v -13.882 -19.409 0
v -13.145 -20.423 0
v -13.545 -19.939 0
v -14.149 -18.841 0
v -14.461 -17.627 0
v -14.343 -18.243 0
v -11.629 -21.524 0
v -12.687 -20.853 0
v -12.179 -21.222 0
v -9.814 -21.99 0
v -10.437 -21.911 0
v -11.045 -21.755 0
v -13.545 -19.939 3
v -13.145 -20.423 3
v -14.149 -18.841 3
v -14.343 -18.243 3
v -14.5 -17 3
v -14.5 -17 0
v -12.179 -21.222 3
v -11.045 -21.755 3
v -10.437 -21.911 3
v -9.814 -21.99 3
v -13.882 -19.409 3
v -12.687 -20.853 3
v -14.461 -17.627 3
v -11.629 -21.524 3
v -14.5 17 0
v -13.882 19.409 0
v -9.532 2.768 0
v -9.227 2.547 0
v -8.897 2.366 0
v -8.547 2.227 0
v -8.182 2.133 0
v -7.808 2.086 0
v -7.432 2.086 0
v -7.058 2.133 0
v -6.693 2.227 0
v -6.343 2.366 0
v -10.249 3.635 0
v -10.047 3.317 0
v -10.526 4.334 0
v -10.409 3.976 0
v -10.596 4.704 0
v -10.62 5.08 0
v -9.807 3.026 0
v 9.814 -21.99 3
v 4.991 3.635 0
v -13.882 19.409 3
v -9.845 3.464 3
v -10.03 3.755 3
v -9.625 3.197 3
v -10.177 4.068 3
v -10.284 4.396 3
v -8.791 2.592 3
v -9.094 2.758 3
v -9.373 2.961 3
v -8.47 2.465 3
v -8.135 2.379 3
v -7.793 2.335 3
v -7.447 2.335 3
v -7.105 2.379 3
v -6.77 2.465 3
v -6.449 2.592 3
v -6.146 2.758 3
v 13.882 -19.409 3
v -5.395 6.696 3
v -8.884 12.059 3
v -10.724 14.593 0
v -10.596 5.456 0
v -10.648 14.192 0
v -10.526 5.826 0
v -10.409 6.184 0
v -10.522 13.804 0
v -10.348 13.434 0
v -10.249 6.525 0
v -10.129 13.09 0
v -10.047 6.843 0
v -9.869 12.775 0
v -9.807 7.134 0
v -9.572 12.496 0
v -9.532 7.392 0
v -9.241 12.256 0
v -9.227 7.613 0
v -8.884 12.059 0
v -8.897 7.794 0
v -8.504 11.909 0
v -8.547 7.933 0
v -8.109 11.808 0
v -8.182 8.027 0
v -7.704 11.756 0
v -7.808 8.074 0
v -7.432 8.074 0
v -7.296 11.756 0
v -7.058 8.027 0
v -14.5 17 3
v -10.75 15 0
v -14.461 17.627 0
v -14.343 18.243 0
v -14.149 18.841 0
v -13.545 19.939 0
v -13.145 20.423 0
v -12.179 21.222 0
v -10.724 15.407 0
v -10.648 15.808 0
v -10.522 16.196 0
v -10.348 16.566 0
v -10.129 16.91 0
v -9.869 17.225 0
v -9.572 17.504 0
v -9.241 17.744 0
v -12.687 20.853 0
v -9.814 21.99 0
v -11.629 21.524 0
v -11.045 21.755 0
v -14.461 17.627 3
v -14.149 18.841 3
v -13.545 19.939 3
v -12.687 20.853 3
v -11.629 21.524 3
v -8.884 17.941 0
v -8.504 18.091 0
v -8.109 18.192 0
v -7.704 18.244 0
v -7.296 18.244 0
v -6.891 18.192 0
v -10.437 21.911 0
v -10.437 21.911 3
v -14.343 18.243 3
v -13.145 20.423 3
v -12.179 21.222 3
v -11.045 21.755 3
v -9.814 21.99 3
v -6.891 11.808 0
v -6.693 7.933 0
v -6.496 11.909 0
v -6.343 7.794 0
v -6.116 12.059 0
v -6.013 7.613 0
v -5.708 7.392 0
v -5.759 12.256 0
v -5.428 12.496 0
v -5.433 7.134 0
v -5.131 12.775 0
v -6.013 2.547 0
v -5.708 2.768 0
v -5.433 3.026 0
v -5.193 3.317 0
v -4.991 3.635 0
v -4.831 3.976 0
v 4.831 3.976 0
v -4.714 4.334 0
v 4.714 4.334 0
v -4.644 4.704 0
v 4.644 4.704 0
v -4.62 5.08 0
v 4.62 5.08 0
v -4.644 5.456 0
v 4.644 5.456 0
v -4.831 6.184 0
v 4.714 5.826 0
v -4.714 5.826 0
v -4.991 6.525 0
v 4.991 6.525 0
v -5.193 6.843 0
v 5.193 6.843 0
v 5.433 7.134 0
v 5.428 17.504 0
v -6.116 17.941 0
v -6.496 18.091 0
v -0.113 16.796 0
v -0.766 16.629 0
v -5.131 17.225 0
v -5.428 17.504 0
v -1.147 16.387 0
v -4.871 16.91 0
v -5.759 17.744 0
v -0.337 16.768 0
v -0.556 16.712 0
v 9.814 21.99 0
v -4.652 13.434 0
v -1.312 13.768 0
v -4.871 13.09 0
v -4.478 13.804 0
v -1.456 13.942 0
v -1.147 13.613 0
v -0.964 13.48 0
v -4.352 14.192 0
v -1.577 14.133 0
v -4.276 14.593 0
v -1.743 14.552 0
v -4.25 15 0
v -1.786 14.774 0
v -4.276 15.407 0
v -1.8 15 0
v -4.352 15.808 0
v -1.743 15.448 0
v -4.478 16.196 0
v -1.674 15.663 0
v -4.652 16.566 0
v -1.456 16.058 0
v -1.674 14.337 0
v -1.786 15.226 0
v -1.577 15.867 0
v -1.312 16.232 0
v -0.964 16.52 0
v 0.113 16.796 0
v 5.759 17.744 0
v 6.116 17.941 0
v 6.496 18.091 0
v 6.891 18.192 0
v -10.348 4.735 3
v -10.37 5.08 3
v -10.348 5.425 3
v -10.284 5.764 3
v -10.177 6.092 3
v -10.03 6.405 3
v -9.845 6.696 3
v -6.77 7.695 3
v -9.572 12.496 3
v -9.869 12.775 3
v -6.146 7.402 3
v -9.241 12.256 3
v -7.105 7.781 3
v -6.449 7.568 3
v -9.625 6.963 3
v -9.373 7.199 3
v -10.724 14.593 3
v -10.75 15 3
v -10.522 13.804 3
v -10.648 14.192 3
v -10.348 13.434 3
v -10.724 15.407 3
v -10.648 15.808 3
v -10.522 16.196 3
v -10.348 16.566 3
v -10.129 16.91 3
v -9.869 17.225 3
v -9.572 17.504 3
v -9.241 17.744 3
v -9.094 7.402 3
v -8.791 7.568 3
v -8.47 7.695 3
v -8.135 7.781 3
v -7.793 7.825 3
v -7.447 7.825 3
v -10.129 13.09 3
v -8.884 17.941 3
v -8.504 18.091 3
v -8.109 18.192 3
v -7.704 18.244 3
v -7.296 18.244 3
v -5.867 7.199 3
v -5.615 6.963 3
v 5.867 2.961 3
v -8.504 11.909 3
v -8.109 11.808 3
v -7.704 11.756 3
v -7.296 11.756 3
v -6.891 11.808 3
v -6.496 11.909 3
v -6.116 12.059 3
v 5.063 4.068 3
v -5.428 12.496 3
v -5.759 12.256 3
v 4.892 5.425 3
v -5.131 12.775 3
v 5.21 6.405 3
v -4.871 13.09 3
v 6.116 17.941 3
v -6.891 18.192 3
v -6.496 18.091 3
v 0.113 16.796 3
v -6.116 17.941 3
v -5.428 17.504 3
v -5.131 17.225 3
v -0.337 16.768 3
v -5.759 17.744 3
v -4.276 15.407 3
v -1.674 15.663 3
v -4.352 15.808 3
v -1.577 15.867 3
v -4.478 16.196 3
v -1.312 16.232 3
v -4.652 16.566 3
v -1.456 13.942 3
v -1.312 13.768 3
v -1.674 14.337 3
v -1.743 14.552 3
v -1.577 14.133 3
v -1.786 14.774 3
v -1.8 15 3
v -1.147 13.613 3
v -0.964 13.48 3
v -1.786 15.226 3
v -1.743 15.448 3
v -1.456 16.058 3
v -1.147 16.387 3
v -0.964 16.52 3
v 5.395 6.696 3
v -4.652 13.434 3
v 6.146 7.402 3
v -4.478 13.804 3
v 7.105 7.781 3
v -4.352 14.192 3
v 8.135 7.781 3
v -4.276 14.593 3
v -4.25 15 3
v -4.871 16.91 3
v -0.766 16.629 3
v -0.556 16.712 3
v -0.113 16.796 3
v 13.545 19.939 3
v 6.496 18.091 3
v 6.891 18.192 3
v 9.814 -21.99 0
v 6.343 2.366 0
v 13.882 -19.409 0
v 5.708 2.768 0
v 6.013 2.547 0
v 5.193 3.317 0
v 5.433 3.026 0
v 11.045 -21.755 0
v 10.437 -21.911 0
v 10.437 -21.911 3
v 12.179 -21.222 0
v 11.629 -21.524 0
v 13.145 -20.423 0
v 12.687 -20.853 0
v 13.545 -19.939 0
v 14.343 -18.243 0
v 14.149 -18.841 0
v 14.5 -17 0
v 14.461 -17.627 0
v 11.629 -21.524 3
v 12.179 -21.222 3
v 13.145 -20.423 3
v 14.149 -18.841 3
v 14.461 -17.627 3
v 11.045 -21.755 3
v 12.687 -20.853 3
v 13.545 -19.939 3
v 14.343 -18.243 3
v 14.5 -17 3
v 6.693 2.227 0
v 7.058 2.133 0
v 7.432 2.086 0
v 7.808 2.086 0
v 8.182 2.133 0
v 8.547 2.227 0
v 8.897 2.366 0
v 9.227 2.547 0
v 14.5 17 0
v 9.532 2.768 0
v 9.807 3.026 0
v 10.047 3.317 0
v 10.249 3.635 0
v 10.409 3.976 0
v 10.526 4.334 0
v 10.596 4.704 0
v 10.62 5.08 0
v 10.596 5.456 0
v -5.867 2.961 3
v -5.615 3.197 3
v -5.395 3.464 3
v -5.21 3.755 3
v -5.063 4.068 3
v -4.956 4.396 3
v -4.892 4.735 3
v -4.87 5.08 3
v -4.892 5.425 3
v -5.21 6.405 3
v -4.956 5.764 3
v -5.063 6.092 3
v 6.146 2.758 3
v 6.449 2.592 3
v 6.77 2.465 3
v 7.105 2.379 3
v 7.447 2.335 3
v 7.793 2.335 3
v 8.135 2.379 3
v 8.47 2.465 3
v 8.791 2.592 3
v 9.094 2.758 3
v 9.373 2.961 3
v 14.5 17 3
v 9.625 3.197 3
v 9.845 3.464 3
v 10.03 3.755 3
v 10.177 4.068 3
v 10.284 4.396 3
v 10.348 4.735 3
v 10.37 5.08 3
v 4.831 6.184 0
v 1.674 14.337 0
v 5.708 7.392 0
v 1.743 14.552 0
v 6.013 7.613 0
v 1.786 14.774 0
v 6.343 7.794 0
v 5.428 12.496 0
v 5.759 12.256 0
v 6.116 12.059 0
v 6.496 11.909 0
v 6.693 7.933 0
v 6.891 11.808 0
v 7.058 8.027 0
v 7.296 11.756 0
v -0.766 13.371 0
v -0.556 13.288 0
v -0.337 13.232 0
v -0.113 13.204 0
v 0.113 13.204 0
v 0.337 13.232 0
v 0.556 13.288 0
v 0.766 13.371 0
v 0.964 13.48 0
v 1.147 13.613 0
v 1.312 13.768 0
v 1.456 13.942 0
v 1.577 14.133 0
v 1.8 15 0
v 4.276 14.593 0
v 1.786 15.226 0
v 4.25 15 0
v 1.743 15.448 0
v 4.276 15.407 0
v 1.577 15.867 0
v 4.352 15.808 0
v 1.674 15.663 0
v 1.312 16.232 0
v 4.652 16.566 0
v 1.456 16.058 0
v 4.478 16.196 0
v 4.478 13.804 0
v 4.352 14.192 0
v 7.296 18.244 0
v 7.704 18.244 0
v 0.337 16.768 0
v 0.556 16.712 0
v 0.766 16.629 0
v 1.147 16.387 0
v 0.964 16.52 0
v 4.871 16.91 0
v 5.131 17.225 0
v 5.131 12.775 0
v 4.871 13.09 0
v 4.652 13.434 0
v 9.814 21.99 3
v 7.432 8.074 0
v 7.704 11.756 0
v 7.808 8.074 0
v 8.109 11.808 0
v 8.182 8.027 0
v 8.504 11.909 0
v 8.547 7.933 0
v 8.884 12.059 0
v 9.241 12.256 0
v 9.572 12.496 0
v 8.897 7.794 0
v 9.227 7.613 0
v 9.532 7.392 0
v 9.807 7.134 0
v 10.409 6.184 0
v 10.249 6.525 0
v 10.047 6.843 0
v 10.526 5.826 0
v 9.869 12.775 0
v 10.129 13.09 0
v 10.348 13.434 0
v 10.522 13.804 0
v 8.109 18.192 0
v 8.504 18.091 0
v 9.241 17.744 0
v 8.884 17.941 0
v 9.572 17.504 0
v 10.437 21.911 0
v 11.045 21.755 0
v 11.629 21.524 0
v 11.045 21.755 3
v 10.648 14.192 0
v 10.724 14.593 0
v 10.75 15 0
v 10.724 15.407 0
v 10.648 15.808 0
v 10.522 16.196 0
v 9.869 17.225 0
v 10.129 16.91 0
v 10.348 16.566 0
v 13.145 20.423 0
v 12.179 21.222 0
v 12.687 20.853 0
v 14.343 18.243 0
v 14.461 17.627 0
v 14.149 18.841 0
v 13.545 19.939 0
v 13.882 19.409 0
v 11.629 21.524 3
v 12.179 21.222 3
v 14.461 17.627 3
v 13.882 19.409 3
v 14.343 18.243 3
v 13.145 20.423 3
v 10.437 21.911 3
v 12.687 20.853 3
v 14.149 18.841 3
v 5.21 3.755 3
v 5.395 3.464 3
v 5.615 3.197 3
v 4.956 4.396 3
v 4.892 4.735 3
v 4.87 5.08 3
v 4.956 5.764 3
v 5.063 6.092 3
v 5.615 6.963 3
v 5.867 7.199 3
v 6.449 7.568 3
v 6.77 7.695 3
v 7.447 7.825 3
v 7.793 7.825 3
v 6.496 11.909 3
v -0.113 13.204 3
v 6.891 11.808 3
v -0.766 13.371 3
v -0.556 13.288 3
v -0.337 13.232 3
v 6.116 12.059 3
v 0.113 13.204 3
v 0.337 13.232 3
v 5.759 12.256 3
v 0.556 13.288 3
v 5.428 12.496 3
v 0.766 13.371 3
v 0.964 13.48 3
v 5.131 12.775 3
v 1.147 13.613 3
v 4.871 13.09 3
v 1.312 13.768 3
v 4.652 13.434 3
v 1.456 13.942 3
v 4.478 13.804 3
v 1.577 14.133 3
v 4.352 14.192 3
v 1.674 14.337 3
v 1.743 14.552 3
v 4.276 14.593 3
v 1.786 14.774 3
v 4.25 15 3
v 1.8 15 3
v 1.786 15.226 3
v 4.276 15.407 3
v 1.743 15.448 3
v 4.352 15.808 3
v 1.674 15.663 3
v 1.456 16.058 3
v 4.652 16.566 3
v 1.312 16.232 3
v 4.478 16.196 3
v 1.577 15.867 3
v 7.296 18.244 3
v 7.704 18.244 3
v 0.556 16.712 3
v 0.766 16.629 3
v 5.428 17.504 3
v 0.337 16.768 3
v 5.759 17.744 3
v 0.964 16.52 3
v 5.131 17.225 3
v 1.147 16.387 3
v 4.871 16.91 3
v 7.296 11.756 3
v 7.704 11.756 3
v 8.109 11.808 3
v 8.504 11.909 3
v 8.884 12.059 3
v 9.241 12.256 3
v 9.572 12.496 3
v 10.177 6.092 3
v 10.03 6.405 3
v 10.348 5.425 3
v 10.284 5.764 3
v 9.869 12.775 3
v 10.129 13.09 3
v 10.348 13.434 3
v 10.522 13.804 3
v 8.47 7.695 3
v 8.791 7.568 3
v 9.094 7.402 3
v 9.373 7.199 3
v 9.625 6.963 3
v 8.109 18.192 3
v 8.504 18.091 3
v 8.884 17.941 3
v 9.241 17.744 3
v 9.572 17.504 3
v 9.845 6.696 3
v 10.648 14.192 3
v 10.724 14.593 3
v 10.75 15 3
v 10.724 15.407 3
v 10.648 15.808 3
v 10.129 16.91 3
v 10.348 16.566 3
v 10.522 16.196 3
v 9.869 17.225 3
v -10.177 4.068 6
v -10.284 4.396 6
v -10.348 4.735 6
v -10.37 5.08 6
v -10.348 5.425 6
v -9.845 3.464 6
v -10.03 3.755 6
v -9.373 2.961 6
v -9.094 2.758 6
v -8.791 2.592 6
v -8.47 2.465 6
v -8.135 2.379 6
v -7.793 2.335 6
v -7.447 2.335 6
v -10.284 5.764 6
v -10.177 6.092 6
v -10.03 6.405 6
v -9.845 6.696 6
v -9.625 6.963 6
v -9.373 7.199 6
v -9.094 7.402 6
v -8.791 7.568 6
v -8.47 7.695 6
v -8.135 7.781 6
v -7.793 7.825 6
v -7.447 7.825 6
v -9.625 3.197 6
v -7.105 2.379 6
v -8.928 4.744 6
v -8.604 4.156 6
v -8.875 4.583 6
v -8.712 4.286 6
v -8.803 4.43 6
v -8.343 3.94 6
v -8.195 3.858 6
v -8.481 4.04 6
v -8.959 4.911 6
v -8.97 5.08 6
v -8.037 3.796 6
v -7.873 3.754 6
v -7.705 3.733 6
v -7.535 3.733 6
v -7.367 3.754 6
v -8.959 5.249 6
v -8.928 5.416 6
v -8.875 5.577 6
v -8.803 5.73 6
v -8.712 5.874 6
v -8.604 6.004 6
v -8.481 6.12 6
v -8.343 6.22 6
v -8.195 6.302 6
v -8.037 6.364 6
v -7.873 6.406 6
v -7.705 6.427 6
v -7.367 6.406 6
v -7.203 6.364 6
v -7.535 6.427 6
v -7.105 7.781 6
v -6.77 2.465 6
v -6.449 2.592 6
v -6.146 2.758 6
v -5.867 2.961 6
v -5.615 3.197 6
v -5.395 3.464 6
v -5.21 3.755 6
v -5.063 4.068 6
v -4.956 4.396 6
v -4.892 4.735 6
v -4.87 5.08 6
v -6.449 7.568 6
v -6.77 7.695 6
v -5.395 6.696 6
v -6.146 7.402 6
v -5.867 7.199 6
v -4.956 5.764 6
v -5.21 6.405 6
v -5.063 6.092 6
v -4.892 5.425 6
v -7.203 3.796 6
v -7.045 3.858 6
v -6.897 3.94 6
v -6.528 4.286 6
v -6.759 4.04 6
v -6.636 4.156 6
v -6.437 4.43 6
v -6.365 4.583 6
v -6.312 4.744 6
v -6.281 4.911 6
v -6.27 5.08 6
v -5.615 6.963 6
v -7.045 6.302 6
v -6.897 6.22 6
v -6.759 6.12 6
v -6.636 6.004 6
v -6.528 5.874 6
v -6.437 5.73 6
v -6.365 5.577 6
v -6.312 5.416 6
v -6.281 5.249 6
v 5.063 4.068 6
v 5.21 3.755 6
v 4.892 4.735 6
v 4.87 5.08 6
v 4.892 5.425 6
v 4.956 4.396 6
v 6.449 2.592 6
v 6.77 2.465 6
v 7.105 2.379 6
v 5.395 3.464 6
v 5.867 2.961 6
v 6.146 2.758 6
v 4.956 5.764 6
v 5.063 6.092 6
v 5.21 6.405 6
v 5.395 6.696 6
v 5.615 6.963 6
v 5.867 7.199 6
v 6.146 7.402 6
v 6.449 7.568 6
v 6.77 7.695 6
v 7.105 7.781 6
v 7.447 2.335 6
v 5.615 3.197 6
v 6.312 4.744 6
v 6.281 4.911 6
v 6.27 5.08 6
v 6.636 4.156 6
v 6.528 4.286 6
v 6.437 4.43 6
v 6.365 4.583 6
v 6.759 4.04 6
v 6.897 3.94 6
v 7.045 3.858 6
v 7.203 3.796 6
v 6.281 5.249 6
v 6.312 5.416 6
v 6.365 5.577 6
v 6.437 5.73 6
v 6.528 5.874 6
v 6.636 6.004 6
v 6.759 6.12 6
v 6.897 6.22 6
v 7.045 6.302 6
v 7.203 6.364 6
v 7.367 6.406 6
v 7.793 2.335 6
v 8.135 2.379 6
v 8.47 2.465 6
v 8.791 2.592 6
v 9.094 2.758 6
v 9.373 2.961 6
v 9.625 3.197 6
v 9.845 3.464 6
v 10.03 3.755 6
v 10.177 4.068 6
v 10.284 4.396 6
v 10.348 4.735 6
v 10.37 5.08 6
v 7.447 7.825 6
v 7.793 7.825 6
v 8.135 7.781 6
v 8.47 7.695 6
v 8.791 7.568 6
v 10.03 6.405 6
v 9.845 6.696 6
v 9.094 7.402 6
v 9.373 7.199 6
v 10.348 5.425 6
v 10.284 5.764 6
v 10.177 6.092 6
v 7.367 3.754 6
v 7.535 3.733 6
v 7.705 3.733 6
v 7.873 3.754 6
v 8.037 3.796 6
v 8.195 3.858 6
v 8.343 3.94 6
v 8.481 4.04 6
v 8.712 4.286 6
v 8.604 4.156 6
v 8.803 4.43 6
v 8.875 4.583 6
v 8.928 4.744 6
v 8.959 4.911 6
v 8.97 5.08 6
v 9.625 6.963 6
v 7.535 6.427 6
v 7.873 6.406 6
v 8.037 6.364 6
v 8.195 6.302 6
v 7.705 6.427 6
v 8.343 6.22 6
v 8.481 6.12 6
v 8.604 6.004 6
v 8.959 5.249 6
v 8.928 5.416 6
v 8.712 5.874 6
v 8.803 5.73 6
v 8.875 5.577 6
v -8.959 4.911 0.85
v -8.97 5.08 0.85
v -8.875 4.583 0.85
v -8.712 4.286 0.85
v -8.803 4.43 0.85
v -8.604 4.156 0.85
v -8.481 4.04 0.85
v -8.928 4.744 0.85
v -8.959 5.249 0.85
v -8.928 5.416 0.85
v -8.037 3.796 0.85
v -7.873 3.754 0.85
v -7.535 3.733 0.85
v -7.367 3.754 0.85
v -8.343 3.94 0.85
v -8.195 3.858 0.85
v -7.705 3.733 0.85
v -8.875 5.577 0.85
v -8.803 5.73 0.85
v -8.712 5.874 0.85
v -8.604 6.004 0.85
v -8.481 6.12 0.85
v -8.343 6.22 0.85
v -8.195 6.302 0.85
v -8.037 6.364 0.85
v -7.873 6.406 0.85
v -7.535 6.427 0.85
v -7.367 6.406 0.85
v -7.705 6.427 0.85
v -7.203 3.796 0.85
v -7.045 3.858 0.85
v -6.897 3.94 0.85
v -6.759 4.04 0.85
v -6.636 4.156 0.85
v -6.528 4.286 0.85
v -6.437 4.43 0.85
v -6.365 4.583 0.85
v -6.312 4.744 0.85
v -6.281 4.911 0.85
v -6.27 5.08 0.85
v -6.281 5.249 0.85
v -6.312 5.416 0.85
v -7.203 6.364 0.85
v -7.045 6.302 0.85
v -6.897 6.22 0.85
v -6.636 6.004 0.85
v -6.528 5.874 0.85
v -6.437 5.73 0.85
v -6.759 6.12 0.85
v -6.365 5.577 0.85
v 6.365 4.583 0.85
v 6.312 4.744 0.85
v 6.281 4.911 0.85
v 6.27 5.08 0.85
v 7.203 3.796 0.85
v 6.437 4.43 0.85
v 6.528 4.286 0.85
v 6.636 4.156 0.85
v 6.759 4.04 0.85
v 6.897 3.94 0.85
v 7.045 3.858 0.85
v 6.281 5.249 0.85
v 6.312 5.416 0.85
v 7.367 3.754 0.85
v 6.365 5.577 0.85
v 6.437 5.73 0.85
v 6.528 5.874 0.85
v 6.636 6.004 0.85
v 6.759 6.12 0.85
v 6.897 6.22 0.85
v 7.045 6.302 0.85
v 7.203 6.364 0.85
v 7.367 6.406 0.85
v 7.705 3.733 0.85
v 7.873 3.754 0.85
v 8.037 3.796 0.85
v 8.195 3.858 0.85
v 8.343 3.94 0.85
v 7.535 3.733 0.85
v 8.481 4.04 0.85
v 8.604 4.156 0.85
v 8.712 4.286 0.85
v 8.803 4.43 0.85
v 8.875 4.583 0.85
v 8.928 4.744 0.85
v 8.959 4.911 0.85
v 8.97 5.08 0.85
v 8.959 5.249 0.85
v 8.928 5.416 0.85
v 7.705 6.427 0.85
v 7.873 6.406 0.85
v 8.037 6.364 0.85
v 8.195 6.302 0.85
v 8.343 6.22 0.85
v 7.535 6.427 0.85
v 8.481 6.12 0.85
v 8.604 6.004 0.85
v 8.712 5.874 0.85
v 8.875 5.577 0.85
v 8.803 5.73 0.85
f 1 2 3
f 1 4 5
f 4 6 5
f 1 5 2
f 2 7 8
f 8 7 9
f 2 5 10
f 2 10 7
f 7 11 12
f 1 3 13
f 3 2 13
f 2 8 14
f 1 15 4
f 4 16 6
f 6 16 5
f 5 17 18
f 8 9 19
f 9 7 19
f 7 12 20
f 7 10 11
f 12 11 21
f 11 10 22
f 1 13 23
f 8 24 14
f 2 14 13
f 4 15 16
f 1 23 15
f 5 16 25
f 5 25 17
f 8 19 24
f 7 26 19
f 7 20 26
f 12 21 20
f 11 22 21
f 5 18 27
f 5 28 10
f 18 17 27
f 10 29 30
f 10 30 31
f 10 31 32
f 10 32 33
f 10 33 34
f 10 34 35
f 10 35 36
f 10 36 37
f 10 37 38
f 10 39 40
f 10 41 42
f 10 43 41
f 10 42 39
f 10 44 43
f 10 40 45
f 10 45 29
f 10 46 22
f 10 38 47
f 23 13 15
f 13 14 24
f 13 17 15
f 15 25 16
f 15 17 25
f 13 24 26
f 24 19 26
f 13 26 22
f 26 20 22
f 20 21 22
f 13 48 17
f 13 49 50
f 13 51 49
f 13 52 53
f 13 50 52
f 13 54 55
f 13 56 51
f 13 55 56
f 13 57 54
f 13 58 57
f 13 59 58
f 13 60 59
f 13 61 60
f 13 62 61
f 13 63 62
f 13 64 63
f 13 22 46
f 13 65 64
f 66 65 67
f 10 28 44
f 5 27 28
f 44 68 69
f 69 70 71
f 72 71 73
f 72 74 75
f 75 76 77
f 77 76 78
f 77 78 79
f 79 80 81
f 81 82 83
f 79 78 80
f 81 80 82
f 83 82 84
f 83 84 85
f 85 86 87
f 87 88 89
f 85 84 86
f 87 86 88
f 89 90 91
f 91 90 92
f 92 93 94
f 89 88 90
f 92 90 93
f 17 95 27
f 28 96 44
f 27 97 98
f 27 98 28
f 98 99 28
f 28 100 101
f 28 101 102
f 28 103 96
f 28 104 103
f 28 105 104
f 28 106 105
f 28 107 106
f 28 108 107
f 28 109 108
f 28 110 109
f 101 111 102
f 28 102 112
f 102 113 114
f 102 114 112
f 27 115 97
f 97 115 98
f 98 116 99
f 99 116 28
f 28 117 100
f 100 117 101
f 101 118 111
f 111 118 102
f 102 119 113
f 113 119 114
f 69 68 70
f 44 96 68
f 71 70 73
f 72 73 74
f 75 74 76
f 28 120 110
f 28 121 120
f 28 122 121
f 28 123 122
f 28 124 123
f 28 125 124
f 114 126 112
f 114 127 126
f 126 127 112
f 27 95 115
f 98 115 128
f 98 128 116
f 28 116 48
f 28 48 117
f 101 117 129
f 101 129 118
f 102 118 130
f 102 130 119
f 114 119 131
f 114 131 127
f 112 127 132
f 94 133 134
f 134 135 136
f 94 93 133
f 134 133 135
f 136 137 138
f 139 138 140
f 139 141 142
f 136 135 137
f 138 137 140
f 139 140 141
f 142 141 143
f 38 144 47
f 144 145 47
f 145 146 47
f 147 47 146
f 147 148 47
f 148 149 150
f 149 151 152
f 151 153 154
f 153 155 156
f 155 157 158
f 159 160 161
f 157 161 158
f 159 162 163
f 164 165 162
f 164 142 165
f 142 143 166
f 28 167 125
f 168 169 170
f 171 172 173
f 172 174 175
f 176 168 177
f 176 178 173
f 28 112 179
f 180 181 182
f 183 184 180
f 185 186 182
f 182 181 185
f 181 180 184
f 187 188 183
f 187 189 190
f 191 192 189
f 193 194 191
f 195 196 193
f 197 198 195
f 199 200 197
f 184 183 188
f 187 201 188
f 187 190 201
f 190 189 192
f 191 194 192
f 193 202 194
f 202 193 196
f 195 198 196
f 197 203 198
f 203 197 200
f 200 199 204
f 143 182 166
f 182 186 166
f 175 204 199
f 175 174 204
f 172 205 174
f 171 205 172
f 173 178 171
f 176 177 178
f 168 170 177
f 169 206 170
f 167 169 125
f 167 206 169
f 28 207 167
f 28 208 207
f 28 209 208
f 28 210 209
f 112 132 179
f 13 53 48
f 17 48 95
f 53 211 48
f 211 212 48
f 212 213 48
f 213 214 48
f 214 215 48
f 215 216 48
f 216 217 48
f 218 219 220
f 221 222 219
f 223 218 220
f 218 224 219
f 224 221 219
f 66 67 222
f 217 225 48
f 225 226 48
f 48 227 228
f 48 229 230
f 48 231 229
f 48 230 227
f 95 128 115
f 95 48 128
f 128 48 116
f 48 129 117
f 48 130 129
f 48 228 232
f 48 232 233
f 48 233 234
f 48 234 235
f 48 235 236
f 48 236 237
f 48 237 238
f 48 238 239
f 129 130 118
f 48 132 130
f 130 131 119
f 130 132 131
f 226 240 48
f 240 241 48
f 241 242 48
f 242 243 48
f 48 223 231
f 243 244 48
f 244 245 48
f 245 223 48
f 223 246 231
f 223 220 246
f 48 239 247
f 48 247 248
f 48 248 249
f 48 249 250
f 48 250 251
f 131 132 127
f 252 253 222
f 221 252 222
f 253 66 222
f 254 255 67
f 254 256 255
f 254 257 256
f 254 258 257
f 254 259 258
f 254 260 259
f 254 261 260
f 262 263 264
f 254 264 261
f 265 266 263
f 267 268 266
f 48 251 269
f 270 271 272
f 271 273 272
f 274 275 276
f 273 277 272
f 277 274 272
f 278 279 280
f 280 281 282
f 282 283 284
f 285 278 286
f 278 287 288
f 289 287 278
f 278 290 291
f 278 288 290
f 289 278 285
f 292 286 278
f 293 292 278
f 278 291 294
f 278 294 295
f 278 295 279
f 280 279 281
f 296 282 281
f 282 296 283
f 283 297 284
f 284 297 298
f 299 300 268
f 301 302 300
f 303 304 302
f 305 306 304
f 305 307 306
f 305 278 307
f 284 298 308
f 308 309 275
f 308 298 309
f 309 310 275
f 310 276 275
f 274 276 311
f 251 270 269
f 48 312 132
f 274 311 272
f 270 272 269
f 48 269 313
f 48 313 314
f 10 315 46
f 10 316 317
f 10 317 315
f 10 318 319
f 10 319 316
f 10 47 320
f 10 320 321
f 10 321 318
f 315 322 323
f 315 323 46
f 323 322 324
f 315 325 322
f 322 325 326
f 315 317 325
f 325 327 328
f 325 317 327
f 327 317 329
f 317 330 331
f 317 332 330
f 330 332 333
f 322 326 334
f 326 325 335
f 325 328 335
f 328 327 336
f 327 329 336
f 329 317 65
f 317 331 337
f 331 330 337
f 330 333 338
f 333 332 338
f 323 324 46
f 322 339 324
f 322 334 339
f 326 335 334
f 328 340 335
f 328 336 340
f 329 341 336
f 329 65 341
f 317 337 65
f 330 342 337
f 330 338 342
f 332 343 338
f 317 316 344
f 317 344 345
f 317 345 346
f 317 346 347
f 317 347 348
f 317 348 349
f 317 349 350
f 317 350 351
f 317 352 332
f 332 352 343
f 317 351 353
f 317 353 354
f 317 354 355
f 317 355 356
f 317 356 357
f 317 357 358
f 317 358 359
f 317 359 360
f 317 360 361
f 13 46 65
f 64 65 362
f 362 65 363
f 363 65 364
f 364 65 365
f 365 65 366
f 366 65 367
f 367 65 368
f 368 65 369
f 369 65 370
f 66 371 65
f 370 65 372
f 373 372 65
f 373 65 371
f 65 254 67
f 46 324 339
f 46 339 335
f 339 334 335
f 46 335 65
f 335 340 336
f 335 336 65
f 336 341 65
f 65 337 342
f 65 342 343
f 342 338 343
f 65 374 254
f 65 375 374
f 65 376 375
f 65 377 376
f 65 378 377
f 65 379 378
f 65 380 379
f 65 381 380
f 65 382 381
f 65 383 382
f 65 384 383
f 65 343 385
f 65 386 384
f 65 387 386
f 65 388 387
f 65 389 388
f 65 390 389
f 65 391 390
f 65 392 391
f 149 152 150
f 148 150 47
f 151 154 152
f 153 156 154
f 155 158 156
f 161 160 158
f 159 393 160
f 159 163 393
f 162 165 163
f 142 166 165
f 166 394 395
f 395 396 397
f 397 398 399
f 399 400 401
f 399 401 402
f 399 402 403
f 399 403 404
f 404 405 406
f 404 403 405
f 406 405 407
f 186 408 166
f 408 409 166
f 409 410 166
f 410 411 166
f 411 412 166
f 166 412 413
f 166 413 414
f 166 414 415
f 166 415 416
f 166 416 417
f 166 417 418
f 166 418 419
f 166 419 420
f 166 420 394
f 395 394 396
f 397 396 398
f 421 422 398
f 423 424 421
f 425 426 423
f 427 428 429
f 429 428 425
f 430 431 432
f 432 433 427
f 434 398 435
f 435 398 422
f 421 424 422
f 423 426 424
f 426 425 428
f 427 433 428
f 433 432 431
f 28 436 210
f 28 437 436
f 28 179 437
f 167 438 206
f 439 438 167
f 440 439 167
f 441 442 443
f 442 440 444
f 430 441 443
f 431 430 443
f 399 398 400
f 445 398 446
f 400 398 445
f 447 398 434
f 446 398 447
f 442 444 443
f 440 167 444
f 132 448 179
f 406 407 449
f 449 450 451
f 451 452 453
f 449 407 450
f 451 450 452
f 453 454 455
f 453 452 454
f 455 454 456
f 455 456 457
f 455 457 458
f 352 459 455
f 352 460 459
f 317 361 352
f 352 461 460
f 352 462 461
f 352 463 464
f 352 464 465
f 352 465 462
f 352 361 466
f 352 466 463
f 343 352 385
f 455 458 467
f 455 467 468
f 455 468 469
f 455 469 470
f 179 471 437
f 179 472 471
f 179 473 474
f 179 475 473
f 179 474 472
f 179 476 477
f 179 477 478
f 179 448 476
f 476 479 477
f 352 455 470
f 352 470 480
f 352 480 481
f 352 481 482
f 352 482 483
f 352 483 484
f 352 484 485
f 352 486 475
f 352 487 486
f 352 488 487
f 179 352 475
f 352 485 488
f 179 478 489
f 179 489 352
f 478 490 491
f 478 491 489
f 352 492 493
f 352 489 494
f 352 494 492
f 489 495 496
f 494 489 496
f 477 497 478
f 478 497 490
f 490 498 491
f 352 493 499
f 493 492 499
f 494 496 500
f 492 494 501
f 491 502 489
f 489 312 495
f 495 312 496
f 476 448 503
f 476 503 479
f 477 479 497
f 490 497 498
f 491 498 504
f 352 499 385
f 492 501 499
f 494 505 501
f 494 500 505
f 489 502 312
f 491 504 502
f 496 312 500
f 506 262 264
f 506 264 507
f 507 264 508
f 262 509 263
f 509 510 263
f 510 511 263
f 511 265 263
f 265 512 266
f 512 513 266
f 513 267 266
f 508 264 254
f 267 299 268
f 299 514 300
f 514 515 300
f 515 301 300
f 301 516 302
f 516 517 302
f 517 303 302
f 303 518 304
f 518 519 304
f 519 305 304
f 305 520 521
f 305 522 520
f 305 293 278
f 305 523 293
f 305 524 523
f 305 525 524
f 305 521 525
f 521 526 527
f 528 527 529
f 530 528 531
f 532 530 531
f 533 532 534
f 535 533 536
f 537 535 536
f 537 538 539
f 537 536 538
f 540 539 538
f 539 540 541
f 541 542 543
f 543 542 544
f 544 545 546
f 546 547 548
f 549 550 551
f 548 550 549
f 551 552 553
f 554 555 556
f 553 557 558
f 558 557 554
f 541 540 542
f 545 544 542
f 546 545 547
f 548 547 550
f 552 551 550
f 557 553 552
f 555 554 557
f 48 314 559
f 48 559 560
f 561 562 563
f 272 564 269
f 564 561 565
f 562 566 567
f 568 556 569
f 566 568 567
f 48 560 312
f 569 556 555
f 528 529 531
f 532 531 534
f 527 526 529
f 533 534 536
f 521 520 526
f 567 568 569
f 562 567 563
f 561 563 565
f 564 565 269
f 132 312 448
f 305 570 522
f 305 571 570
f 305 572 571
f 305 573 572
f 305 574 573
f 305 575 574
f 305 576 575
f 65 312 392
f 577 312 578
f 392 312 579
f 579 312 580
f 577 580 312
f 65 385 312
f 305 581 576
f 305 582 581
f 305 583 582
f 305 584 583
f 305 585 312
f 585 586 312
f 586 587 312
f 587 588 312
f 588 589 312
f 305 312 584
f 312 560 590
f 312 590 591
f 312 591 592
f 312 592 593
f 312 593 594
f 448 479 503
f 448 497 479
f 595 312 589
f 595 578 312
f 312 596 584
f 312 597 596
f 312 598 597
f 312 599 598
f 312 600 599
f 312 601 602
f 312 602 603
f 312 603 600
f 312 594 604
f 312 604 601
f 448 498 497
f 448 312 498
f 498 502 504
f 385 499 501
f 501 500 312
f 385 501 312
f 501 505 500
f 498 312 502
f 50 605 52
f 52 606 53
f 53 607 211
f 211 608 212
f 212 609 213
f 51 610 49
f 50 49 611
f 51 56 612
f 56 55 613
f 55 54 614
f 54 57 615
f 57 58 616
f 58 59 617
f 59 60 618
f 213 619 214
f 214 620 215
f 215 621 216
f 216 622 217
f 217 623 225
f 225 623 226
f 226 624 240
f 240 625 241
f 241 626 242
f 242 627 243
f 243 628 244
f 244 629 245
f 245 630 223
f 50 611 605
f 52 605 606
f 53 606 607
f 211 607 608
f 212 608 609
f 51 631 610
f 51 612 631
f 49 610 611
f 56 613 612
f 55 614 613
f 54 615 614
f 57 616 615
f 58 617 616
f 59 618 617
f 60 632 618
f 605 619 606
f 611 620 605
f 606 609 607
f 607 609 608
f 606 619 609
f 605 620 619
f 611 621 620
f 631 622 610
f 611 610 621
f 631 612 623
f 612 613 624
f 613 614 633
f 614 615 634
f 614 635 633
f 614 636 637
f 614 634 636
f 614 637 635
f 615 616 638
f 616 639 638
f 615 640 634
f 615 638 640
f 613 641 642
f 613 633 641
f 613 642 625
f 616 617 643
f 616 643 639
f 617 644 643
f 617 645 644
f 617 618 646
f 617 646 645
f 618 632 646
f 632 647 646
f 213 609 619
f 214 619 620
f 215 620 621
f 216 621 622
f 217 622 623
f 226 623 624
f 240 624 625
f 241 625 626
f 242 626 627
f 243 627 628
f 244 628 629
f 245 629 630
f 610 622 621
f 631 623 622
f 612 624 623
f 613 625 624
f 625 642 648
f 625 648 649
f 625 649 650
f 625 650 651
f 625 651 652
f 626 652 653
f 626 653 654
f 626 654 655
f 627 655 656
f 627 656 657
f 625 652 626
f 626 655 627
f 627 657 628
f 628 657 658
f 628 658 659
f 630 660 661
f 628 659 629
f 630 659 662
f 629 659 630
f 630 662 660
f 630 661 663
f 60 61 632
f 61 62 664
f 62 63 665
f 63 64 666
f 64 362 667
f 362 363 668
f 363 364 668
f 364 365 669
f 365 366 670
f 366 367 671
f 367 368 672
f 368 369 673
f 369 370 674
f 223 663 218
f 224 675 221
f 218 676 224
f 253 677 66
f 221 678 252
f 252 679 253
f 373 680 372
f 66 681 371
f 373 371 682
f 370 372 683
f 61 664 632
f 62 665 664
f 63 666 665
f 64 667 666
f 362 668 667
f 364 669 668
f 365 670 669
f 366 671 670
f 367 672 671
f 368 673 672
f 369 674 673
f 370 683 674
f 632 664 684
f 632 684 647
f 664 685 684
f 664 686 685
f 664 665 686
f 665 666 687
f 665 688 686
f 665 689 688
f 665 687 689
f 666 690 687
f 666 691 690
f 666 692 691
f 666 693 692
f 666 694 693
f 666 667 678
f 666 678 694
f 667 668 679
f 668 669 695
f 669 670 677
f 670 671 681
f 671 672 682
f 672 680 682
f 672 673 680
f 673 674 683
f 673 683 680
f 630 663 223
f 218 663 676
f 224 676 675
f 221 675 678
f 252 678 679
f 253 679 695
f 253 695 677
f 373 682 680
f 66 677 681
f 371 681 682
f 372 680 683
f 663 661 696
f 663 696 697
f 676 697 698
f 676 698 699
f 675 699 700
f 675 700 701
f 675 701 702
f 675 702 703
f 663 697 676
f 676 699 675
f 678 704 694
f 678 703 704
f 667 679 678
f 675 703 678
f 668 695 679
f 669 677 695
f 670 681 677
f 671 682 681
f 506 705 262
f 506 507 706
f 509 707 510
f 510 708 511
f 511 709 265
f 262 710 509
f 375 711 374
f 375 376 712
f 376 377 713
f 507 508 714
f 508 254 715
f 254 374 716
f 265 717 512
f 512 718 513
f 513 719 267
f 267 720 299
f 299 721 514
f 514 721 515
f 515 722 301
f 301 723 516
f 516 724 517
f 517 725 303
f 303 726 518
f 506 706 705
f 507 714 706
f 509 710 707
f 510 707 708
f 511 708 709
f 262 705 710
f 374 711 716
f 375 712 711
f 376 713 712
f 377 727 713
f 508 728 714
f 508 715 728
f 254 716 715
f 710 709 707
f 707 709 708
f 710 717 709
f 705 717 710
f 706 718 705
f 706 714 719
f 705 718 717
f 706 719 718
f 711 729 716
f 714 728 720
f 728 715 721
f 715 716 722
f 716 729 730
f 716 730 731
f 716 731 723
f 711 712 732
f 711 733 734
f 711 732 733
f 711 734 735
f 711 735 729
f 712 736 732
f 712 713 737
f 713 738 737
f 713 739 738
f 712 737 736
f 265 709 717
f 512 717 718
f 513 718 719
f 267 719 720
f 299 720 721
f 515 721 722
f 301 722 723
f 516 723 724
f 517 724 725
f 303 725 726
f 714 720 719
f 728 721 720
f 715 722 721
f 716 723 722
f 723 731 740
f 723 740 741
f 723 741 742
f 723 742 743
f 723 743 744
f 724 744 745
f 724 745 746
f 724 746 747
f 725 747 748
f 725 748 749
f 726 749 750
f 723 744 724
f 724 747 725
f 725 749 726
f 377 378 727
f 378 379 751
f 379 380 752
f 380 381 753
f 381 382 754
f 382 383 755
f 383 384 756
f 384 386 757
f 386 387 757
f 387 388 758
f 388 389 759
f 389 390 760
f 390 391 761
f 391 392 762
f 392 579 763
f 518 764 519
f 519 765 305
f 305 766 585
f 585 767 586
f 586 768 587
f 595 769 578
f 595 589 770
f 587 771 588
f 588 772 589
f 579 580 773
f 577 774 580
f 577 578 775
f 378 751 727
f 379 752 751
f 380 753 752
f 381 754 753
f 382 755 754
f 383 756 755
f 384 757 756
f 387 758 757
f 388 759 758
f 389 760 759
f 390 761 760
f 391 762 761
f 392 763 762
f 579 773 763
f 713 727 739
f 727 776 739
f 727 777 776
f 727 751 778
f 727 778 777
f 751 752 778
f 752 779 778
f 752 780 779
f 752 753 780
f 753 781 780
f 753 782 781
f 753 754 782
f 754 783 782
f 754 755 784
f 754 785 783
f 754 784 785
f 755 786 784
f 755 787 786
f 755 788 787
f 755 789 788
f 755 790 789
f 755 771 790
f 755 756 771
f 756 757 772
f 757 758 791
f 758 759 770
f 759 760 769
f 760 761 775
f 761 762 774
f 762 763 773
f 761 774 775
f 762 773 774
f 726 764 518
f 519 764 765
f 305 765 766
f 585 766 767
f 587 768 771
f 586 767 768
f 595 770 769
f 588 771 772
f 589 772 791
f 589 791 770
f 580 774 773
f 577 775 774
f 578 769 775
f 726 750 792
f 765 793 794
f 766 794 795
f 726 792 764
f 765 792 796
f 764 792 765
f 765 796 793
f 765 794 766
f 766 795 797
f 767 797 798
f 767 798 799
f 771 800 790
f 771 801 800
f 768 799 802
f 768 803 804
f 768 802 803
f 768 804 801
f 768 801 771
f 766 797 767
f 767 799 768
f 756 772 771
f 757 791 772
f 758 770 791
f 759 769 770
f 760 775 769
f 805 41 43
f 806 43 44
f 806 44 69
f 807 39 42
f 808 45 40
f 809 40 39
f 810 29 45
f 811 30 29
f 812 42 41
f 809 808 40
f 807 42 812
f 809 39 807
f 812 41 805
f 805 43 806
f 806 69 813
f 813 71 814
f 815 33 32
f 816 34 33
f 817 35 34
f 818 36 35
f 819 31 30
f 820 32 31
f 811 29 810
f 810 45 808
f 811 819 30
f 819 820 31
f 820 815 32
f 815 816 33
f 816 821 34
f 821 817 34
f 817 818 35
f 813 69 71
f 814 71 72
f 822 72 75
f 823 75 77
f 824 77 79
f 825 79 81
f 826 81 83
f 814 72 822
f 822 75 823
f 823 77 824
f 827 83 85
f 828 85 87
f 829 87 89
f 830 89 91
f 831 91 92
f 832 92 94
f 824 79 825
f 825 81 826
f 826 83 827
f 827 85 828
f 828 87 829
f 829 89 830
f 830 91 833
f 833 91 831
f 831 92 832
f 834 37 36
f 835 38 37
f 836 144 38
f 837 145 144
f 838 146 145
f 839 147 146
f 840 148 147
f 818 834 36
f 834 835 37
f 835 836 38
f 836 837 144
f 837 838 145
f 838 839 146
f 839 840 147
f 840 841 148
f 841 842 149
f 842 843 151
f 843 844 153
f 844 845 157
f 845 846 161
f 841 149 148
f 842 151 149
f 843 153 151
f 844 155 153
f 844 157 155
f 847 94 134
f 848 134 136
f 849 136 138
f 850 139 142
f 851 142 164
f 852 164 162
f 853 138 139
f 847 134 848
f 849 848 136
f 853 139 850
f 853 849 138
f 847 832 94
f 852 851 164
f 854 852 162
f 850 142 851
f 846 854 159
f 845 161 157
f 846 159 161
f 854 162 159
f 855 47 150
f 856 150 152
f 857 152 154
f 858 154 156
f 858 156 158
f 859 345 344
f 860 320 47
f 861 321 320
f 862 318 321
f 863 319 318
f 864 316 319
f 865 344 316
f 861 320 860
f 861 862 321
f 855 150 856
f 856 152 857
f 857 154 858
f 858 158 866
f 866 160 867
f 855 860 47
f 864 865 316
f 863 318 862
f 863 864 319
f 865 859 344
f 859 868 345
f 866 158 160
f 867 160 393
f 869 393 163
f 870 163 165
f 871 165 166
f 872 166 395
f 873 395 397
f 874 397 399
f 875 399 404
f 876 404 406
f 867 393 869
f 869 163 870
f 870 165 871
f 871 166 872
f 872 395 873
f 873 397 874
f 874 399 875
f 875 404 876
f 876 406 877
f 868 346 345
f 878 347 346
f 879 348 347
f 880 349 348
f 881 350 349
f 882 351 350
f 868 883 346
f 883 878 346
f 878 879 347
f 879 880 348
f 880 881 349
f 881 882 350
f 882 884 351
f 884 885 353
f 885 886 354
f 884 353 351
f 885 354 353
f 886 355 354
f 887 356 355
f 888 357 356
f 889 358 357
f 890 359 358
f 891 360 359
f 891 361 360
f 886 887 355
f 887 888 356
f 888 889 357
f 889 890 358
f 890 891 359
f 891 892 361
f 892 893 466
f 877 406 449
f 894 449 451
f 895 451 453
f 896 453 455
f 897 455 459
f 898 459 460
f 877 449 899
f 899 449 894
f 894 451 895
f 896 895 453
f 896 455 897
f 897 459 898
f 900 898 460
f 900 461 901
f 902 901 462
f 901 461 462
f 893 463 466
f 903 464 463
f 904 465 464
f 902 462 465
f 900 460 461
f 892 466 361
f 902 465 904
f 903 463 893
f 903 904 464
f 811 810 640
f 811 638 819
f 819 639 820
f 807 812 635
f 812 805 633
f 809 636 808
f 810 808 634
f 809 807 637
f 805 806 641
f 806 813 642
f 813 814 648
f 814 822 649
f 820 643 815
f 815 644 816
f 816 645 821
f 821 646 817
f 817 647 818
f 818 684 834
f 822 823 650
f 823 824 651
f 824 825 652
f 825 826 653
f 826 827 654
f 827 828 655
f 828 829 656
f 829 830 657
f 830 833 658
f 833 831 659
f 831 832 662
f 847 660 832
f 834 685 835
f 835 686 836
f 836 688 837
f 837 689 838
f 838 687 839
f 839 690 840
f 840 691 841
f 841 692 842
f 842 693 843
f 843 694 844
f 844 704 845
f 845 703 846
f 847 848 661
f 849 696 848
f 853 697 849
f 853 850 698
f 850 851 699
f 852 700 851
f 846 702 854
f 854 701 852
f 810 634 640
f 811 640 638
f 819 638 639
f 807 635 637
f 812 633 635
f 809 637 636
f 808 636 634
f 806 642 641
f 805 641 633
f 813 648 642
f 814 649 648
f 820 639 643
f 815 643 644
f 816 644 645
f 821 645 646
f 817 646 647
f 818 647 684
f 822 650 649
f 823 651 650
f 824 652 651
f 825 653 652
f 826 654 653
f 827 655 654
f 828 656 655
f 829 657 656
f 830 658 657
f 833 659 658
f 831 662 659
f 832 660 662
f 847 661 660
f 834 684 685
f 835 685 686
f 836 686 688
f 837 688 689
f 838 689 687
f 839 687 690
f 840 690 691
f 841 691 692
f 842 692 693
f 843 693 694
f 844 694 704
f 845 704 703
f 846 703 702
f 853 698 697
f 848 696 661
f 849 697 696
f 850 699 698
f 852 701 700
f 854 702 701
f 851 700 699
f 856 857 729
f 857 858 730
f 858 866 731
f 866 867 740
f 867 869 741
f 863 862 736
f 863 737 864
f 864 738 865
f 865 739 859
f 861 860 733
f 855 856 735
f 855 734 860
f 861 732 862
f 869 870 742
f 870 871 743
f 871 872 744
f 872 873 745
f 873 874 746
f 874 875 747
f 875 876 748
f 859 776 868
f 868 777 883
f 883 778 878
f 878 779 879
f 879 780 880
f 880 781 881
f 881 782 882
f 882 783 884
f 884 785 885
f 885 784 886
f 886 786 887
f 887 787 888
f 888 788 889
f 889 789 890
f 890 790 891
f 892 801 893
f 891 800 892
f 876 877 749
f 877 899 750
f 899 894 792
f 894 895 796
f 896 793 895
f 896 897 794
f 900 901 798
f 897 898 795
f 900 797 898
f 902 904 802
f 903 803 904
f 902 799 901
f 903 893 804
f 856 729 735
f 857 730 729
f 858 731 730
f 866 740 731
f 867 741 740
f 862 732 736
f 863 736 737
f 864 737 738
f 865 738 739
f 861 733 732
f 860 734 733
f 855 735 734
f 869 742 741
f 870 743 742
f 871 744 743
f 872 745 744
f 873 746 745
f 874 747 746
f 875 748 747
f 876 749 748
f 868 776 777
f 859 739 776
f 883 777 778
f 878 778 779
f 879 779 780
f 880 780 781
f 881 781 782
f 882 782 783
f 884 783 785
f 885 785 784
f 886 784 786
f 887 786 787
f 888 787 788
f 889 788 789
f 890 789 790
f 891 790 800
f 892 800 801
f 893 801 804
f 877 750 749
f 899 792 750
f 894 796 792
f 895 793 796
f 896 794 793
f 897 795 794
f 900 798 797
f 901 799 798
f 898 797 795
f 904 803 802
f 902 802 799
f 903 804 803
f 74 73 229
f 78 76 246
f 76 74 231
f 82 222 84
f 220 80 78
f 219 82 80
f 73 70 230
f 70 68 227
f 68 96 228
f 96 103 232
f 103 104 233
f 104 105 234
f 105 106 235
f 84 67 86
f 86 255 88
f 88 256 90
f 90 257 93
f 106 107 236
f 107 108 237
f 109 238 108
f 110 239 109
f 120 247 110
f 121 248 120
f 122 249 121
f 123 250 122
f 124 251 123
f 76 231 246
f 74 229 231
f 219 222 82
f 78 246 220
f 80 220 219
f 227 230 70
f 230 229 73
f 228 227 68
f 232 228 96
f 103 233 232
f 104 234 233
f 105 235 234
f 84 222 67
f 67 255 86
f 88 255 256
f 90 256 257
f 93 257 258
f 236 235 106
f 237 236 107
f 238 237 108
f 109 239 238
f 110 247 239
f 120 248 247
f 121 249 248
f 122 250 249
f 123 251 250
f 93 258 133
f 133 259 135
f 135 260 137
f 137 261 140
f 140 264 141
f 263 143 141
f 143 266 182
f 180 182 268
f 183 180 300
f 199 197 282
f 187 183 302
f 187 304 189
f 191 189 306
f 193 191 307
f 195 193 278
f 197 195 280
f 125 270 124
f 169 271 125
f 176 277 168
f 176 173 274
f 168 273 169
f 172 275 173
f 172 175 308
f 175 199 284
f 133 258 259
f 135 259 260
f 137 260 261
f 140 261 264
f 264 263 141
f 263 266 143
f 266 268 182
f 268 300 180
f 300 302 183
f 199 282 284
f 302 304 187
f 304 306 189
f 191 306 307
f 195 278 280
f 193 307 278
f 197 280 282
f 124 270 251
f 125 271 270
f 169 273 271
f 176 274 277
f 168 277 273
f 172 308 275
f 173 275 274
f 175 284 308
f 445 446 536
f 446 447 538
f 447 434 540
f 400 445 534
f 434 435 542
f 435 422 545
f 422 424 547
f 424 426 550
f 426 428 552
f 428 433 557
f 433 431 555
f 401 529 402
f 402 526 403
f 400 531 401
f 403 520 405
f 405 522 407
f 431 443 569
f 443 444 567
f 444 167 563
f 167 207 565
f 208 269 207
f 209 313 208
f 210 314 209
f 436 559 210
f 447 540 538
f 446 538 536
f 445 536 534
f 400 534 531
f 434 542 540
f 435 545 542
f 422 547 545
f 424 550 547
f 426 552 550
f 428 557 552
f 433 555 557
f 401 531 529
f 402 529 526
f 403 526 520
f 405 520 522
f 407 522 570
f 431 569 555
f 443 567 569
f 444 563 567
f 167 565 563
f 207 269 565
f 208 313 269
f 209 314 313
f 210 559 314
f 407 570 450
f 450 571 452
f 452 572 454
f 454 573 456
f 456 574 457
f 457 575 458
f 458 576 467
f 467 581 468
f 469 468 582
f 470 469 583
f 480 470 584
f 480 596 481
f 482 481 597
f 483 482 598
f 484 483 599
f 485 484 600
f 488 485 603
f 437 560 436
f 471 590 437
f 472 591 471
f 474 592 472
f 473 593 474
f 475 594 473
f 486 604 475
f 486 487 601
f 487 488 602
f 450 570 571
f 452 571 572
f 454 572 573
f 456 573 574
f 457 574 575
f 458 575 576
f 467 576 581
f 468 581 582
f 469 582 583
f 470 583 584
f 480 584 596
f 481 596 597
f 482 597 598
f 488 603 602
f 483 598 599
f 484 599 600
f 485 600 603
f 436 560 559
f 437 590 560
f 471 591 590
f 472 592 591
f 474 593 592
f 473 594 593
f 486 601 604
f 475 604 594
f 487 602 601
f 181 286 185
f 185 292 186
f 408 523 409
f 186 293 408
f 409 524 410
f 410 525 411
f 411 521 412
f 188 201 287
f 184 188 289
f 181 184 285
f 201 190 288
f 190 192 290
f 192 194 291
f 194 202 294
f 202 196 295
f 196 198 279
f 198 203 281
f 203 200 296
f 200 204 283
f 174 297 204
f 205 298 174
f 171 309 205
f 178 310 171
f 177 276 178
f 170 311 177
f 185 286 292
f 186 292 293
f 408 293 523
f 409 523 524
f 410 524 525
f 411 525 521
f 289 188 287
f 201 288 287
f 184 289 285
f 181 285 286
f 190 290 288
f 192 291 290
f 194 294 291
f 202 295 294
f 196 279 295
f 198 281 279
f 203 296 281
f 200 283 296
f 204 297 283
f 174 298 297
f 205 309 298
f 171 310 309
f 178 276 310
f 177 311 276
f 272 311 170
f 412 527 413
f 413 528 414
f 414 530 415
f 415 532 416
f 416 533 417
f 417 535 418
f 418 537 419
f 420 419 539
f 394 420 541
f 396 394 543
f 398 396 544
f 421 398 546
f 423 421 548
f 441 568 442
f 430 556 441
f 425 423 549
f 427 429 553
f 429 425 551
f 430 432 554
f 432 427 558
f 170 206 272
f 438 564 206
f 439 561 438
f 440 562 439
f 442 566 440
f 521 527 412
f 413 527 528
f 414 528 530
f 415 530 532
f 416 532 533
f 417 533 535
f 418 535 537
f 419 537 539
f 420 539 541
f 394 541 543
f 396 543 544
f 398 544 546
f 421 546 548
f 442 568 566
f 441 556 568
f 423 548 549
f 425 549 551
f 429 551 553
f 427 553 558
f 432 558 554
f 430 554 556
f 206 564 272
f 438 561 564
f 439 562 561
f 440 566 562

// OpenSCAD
$fn = 50;

difference() {
	union() {
		hull() {
			translate(v = [-9.5, 17.0, 0]) {
				cylinder(h = 3, r = 5);
			}
			translate(v = [9.5, 17.0, 0]) {
				cylinder(h = 3, r = 5);
			}
			translate(v = [-9.5, -17.0, 0]) {
				cylinder(h = 3, r = 5);
			}
			translate(v = [9.5, -17.0, 0]) {
				cylinder(h = 3, r = 5);
			}
		}
		translate(v = [-7.62, 5.08, 3.0]) {
			cylinder(h = 3, r = 2.75);
		}
		translate(v = [7.62, 5.08, 3.0]) {
			cylinder(h = 3, r = 2.75);
		}
	}
	union() {
		translate(v = [-7.62, 5.08, 0]) {
			rotate(a = [0, 180, 0]) {
				difference() {
					union() {
						translate(v = [0, 0, -6.0]) {
							cylinder(h = 6, r = 1.0);
						}
						translate(v = [0, 0, -0.85]) {
							cylinder(h = 0.85, r1 = 1.35, r2 = 3.0);
						}
						translate(v = [0, 0, -6.0]) {
							cylinder(h = 6, r = 1.35);
						}
						translate(v = [0, 0, -6.0]) {
							cylinder(h = 6, r = 1.0);
						}
					}
					union();
				}
			}
		}
		translate(v = [7.62, 5.08, 0]) {
			rotate(a = [0, 180, 0]) {
				difference() {
					union() {
						translate(v = [0, 0, -6.0]) {
							cylinder(h = 6, r = 1.0);
						}
						translate(v = [0, 0, -0.85]) {
							cylinder(h = 0.85, r1 = 1.35, r2 = 3.0);
						}
						translate(v = [0, 0, -6.0]) {
							cylinder(h = 6, r = 1.35);
						}
						translate(v = [0, 0, -6.0]) {
							cylinder(h = 6, r = 1.0);
						}
					}
					union();
				}
			}
		}
		translate(v = [-7.5, 15.0, -1]) {
			cylinder(h = 5, r = 3.25);
		}
		translate(v = [7.5, 15.0, -1]) {
			cylinder(h = 5, r = 3.25);
		}
		translate(v = [0.0, 15.0, -1]) {
			cylinder(h = 5, r = 1.8);
		}
	}
}
